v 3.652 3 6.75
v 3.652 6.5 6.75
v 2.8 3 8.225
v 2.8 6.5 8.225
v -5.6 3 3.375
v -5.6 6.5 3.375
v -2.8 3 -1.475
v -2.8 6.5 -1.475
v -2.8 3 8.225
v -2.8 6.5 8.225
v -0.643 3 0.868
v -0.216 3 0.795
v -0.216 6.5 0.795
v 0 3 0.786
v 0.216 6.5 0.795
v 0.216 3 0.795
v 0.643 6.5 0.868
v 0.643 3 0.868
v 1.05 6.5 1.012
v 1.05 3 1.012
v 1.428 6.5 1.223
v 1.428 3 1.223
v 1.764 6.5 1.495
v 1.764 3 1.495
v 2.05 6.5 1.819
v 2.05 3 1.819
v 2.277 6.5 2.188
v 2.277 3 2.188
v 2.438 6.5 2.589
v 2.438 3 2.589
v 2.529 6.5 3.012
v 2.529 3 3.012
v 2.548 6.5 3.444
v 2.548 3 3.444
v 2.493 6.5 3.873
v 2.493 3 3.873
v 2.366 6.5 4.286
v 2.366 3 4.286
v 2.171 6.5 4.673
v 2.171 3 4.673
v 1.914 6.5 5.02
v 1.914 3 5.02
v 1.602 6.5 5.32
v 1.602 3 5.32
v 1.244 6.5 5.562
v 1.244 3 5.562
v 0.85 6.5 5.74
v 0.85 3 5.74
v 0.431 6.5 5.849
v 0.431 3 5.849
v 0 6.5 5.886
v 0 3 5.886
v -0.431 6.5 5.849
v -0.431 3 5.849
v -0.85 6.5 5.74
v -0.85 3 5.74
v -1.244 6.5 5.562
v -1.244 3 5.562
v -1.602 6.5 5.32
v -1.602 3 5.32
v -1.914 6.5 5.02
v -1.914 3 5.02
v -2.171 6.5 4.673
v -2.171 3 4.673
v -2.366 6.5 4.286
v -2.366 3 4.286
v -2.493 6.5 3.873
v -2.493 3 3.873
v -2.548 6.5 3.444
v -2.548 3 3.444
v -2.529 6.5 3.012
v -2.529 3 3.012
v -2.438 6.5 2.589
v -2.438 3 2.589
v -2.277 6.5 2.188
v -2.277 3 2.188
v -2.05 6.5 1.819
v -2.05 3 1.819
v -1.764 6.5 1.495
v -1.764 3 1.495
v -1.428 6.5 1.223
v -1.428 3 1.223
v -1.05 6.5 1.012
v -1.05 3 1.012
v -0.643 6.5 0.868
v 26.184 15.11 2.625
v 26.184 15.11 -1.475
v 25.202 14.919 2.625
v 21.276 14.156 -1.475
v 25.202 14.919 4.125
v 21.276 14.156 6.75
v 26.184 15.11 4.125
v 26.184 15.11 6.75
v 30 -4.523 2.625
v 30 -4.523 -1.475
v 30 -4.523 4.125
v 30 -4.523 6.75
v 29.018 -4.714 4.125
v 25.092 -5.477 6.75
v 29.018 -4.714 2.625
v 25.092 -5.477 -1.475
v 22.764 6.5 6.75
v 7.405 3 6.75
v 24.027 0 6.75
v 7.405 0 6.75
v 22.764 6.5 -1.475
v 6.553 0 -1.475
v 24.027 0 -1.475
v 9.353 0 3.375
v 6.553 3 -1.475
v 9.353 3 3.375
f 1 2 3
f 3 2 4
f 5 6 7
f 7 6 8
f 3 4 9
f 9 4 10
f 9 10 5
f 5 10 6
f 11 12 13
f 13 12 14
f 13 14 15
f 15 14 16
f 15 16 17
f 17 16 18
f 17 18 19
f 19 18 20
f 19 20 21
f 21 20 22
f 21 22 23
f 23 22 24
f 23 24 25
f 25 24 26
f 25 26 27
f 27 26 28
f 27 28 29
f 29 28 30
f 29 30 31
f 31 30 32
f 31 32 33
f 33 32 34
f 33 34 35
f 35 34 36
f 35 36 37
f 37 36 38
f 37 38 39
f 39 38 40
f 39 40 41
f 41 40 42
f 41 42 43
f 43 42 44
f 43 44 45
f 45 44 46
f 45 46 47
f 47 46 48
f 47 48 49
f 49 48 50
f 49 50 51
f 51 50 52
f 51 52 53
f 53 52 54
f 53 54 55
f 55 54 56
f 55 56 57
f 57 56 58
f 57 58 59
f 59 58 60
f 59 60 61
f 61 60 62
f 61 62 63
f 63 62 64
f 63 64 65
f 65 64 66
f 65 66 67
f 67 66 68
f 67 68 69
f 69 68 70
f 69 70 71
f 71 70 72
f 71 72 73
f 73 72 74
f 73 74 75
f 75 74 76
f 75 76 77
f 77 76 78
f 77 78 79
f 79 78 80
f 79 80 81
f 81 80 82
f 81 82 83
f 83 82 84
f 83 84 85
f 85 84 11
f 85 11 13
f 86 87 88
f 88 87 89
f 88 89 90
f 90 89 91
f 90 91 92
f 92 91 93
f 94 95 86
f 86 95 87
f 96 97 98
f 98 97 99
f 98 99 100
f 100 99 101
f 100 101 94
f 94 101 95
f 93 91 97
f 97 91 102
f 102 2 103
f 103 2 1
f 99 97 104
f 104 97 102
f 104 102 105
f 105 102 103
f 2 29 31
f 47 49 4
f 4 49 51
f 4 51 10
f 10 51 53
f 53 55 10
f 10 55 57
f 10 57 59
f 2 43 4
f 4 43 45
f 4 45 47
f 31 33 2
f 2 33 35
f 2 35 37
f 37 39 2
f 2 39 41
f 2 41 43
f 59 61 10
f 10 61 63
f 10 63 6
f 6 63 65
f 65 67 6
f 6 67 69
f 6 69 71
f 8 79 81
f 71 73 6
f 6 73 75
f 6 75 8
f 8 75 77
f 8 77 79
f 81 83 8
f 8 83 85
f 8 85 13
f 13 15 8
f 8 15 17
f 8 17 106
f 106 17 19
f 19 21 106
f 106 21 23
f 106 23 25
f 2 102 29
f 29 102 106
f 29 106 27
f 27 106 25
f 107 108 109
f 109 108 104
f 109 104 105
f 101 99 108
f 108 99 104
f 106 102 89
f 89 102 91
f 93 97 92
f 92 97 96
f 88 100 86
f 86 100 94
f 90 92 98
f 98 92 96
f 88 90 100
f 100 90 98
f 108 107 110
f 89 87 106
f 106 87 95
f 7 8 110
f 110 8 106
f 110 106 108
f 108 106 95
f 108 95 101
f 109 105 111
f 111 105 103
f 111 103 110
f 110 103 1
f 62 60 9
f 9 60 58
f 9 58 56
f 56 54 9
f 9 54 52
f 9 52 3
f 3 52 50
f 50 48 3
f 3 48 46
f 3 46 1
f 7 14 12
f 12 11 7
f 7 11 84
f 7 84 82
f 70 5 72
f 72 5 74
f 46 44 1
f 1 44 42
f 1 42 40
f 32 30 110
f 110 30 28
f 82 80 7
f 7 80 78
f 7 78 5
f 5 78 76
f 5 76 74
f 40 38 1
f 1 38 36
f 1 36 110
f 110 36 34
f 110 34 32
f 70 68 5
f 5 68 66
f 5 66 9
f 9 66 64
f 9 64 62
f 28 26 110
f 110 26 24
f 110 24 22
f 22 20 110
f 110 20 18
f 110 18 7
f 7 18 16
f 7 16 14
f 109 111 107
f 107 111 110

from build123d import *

# Parameters (mm, degrees)
SKETCH1_W                       = 25
SKETCH1_H                       = 6.75
BOSS_EXTRUDE1_DEPTH             = 6.5
BOSS_EXTRUDE3_REACH             = 5.375
BOSS_EXTRUDE3_DIRECTION_2_REACH = 5.375
SKETCH4_W                       = 1
SKETCH4_H                       = 1.5
CUT_EXTRUDE1_DEPTH              = 23
BOSS_EXTRUDE4_DEPTH             = 6.5
SKETCH6_R                       = 2.55
CUT_EXTRUDE2_DEPTH              = 10
BOSS_EXTRUDE5_DEPTH             = 1.475
CUT_EXTRUDE3_DEPTH              = 3


with BuildPart() as part:
    # Sketch1 → Boss-Extrude1 (new body)
    with BuildSketch(Plane(origin=(0, 0, 0), x_dir=(1, 0, 0), z_dir=(0, 1, 0))):
        with Locations((12.5, -3.375)):
            Rectangle(SKETCH1_W, SKETCH1_H)
    extrude(amount=BOSS_EXTRUDE1_DEPTH)

    # Boss-Extrude3: up to this face of the body (flat: up to its plane)
    boss_extrude3_end = Plane(part.part.faces().sort_by_distance((12.5, 3.25, 0))[0])
    # Sketch3 → Boss-Extrude3 (add, up to the picked face)
    with BuildSketch(Plane.XY.offset(3.375), mode=Mode.PRIVATE) as boss_extrude3_sk1:
        Polygon((21.275684175, 14.155521181), (26.183820092, 15.109566157), (30, -4.522977512), (25.091864083, -5.477022488), align=None)
    boss_extrude3_tool1 = split(extrude(boss_extrude3_sk1.sketch, amount=-BOSS_EXTRUDE3_REACH, mode=Mode.PRIVATE), bisect_by=boss_extrude3_end, keep=Keep.BOTH, mode=Mode.PRIVATE)
    add(boss_extrude3_tool1.solids().sort_by_distance((25.637842, 4.816272, 3.375))[0])

    # Boss-Extrude3 direction 2: up to this face of the body (flat: up to its plane)
    boss_extrude3_direction_2_end = Plane(part.part.faces().sort_by_distance((12.5, 3.25, 6.75))[0])
    # Sketch3 → Boss-Extrude3 direction 2 (add, up to the picked face)
    with BuildSketch(Plane.XY.offset(3.375), mode=Mode.PRIVATE) as boss_extrude3_direction_2_sk1:
        Polygon((21.275684175, 14.155521181), (26.183820092, 15.109566157), (30, -4.522977512), (25.091864083, -5.477022488), align=None)
    boss_extrude3_direction_2_tool1 = split(extrude(boss_extrude3_direction_2_sk1.sketch, amount=BOSS_EXTRUDE3_DIRECTION_2_REACH, mode=Mode.PRIVATE), bisect_by=boss_extrude3_direction_2_end, keep=Keep.BOTH, mode=Mode.PRIVATE)
    add(boss_extrude3_direction_2_tool1.solids().sort_by_distance((25.637842, 4.816272, 3.375))[0])

    # Sketch4 → Cut-Extrude1 (cut)
    with BuildSketch(Plane(origin=(-1.876769127, 9.65514015, 0), x_dir=(0.981627183, 0.190808995, 0), z_dir=(-0.190808995, 0.981627183, 0))):
        with Locations((28.085790708, -3.375)):
            Rectangle(SKETCH4_W, SKETCH4_H)
    extrude(amount=-CUT_EXTRUDE1_DEPTH, mode=Mode.SUBTRACT)

    # Sketch5 → Boss-Extrude4 (add)
    with BuildSketch(Plane(origin=(0, 6.5, 0), x_dir=(1, 0, 0), z_dir=(0, 1, 0))):
        Polygon((-5.600297611, -3.375), (-2.800148806, -8.225), (2.800148806, -8.225), (5.600297611, -3.375), (2.800148806, 1.475), (-2.800148806, 1.475), align=None)
    extrude(amount=-BOSS_EXTRUDE4_DEPTH)

    # Sketch6 → Cut-Extrude2 (cut)
    with BuildSketch(Plane(origin=(0, 6.5, 0), x_dir=(1, 0, 0), z_dir=(0, 1, 0))):
        with Locations((0, -3.335615973)):
            Circle(SKETCH6_R)
    extrude(amount=-CUT_EXTRUDE2_DEPTH, mode=Mode.SUBTRACT)

    # Sketch7 → Boss-Extrude5 (add)
    with BuildSketch(Plane(origin=(0, 0, -1.475), x_dir=(-1, 0, 0), z_dir=(0, 0, -1))):
        Polygon((-2.800148806, 0), (-24.027238758, 0), (-25.091864083, -5.477022488), (-30, -4.522977512), (-26.183820092, 15.109566157), (-21.275684175, 14.155521181), (-22.763766749, 6.5), (-2.800148806, 6.5), align=None)
    extrude(amount=-BOSS_EXTRUDE5_DEPTH)

    # Sketch8 → Cut-Extrude3 (cut)
    with BuildSketch(Plane(origin=(0, 0, 0), x_dir=(-1, 0, 0), z_dir=(0, -1, 0))):
        Polygon((-4.67653718, -11.475), (4.67653718, -11.475), (9.353074361, -3.375), (4.67653718, 4.725), (-4.67653718, 4.725), (-9.353074361, -3.375), align=None)
    extrude(amount=-CUT_EXTRUDE3_DEPTH, mode=Mode.SUBTRACT)


solid = part.part
